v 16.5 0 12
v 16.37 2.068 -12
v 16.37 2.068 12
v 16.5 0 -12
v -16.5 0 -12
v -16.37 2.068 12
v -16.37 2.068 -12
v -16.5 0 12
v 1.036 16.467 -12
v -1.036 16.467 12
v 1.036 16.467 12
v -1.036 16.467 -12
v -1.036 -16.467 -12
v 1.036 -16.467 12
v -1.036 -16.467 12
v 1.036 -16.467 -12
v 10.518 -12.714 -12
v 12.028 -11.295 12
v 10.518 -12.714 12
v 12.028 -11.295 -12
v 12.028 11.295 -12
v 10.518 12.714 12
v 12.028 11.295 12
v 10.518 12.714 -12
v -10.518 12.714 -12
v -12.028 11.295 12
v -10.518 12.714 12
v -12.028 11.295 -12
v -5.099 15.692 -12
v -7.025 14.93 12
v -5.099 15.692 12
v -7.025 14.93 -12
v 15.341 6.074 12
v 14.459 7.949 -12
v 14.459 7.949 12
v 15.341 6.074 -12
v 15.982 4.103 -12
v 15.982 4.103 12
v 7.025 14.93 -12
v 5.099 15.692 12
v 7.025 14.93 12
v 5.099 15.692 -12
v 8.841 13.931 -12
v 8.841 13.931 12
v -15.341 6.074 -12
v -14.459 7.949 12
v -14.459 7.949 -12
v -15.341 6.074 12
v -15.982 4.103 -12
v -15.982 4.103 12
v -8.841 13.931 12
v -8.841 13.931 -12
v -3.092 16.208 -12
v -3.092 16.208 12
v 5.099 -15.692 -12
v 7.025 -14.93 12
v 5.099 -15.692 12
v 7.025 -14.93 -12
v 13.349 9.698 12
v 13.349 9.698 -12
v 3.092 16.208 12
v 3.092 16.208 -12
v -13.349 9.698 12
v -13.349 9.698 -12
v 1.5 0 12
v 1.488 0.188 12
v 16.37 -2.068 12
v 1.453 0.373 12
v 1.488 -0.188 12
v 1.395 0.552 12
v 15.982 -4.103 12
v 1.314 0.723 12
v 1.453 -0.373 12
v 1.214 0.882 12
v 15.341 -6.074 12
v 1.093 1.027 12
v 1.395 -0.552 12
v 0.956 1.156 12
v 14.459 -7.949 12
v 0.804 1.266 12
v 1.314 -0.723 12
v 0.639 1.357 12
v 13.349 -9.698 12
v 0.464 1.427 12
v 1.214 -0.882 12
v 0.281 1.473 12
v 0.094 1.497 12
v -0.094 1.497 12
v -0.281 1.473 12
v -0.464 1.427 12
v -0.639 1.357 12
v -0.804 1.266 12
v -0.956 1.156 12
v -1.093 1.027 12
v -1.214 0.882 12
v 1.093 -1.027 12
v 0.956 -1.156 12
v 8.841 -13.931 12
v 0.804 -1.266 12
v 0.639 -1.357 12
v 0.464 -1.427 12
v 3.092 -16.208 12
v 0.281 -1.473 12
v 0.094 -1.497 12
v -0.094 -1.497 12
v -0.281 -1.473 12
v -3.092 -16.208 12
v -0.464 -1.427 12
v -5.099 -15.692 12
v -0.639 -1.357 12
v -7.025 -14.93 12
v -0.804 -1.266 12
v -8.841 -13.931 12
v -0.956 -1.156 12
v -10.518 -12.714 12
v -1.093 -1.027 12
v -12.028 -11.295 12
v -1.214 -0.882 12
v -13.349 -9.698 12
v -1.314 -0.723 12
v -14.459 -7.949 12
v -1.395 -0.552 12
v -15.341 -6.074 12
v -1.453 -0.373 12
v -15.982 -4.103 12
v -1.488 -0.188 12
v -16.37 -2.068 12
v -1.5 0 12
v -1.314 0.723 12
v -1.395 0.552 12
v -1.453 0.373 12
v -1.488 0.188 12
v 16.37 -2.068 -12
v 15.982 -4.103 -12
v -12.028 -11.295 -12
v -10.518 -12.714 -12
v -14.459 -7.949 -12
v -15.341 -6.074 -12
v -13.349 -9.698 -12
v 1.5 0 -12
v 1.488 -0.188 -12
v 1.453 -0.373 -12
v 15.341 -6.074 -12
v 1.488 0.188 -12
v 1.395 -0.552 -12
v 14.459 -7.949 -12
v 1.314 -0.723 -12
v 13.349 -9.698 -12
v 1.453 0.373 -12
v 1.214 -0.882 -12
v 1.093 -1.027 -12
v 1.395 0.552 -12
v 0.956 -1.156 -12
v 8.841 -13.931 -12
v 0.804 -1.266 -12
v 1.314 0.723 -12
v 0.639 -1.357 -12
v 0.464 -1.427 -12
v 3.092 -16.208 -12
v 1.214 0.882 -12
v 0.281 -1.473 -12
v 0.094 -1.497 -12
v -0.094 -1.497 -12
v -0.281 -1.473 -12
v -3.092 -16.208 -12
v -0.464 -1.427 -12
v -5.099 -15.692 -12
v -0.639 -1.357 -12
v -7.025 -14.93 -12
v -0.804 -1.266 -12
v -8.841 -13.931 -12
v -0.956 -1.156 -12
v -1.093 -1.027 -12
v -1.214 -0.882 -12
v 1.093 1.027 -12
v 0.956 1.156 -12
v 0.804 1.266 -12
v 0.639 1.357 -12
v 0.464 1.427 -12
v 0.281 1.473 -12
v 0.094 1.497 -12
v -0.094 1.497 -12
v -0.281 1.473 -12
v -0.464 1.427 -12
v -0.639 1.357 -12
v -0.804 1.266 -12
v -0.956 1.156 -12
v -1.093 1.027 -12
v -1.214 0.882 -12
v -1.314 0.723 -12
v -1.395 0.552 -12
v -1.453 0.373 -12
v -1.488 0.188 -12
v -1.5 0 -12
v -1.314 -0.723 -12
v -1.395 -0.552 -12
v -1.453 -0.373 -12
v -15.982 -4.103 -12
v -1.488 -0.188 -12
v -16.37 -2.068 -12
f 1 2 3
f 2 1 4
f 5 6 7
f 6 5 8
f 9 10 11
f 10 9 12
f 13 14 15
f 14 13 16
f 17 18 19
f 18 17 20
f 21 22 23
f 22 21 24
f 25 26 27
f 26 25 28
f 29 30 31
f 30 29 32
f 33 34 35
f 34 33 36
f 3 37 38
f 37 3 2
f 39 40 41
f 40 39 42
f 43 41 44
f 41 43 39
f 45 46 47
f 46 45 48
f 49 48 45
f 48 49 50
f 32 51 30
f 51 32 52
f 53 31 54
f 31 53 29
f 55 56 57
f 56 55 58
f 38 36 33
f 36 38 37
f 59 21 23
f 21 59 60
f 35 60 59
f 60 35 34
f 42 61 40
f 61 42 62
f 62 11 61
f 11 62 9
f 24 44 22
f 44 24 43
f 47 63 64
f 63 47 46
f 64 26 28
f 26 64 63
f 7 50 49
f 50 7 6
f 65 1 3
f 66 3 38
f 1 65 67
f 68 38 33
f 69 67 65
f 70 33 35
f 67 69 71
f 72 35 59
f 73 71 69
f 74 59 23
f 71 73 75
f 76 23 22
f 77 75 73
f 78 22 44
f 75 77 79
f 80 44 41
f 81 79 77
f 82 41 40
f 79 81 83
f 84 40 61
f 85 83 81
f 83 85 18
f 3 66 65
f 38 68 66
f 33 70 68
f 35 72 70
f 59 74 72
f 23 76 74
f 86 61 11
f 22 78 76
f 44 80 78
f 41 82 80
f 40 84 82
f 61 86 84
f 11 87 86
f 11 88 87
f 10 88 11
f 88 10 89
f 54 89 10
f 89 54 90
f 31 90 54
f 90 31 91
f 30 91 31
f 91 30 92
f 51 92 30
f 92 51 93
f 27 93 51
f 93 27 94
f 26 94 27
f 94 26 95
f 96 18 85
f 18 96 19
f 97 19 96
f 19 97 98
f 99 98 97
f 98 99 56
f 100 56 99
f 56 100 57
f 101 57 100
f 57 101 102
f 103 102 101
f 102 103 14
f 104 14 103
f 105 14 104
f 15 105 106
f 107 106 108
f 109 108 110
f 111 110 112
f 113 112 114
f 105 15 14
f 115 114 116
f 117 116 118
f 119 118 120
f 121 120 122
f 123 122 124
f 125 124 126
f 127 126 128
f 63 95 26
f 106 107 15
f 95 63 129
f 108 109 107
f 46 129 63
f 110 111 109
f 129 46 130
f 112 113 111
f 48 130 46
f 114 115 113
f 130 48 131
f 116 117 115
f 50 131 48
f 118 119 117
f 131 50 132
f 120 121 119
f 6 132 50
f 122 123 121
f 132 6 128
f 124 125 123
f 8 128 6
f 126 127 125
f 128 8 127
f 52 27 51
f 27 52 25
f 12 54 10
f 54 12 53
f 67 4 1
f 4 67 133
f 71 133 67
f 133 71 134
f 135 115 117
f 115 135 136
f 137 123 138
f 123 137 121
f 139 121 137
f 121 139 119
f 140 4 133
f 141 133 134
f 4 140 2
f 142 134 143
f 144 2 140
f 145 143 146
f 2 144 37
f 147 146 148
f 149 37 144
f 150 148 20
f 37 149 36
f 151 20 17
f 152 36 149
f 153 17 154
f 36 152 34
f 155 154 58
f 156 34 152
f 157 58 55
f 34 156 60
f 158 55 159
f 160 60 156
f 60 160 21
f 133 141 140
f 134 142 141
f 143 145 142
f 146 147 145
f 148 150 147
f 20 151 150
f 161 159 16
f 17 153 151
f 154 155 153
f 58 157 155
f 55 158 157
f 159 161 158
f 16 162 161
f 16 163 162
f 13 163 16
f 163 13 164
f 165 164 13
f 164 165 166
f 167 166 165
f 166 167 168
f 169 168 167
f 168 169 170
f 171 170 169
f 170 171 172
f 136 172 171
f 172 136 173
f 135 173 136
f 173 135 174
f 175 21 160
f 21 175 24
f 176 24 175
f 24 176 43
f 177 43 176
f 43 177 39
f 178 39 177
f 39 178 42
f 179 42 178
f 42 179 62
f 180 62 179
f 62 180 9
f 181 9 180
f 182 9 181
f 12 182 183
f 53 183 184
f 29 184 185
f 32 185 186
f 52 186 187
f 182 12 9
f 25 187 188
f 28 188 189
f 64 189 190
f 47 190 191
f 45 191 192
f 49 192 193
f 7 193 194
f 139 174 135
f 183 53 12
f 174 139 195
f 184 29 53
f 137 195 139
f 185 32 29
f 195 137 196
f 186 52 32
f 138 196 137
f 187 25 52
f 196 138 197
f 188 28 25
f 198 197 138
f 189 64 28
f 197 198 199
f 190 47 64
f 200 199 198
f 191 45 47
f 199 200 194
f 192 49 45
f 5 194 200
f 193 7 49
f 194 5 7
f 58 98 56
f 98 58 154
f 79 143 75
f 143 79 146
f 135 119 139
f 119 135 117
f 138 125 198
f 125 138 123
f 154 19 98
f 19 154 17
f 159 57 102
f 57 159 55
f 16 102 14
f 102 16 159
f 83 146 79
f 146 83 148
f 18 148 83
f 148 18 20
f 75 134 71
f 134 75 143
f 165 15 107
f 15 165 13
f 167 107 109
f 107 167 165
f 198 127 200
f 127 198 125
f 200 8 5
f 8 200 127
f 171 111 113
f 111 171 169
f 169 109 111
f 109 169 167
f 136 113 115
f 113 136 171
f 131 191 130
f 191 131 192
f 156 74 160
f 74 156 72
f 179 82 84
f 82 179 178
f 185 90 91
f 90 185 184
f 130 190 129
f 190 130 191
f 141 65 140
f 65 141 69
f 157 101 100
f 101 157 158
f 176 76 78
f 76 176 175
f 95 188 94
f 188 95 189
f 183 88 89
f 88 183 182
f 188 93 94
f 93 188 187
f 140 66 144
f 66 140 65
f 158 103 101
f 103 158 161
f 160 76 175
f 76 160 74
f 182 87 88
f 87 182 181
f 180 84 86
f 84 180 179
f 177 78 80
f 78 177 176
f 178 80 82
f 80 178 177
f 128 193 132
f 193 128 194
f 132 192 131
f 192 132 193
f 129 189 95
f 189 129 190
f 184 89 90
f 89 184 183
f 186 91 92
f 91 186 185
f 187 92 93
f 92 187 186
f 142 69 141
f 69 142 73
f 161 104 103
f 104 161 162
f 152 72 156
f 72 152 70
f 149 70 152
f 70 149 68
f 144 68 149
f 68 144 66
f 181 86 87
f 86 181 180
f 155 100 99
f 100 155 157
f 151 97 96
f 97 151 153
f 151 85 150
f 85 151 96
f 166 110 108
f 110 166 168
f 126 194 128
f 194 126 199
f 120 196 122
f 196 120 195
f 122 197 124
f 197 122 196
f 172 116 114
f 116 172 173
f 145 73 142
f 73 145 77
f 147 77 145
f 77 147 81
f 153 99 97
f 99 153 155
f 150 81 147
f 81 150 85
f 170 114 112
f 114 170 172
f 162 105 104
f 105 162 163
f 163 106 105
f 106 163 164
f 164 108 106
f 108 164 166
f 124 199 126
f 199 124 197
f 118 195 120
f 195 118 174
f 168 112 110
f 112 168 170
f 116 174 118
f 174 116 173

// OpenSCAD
$fn = 50;


difference() {
	union() {
		translate(v = [0, 0, -12.0000000000]) {
			cylinder(h = 24, r = 16.5000000000);
		}
	}
	union() {
		translate(v = [0, 0, -100.0000000000]) {
			cylinder(h = 200, r = 1.5000000000);
		}
	}
}
